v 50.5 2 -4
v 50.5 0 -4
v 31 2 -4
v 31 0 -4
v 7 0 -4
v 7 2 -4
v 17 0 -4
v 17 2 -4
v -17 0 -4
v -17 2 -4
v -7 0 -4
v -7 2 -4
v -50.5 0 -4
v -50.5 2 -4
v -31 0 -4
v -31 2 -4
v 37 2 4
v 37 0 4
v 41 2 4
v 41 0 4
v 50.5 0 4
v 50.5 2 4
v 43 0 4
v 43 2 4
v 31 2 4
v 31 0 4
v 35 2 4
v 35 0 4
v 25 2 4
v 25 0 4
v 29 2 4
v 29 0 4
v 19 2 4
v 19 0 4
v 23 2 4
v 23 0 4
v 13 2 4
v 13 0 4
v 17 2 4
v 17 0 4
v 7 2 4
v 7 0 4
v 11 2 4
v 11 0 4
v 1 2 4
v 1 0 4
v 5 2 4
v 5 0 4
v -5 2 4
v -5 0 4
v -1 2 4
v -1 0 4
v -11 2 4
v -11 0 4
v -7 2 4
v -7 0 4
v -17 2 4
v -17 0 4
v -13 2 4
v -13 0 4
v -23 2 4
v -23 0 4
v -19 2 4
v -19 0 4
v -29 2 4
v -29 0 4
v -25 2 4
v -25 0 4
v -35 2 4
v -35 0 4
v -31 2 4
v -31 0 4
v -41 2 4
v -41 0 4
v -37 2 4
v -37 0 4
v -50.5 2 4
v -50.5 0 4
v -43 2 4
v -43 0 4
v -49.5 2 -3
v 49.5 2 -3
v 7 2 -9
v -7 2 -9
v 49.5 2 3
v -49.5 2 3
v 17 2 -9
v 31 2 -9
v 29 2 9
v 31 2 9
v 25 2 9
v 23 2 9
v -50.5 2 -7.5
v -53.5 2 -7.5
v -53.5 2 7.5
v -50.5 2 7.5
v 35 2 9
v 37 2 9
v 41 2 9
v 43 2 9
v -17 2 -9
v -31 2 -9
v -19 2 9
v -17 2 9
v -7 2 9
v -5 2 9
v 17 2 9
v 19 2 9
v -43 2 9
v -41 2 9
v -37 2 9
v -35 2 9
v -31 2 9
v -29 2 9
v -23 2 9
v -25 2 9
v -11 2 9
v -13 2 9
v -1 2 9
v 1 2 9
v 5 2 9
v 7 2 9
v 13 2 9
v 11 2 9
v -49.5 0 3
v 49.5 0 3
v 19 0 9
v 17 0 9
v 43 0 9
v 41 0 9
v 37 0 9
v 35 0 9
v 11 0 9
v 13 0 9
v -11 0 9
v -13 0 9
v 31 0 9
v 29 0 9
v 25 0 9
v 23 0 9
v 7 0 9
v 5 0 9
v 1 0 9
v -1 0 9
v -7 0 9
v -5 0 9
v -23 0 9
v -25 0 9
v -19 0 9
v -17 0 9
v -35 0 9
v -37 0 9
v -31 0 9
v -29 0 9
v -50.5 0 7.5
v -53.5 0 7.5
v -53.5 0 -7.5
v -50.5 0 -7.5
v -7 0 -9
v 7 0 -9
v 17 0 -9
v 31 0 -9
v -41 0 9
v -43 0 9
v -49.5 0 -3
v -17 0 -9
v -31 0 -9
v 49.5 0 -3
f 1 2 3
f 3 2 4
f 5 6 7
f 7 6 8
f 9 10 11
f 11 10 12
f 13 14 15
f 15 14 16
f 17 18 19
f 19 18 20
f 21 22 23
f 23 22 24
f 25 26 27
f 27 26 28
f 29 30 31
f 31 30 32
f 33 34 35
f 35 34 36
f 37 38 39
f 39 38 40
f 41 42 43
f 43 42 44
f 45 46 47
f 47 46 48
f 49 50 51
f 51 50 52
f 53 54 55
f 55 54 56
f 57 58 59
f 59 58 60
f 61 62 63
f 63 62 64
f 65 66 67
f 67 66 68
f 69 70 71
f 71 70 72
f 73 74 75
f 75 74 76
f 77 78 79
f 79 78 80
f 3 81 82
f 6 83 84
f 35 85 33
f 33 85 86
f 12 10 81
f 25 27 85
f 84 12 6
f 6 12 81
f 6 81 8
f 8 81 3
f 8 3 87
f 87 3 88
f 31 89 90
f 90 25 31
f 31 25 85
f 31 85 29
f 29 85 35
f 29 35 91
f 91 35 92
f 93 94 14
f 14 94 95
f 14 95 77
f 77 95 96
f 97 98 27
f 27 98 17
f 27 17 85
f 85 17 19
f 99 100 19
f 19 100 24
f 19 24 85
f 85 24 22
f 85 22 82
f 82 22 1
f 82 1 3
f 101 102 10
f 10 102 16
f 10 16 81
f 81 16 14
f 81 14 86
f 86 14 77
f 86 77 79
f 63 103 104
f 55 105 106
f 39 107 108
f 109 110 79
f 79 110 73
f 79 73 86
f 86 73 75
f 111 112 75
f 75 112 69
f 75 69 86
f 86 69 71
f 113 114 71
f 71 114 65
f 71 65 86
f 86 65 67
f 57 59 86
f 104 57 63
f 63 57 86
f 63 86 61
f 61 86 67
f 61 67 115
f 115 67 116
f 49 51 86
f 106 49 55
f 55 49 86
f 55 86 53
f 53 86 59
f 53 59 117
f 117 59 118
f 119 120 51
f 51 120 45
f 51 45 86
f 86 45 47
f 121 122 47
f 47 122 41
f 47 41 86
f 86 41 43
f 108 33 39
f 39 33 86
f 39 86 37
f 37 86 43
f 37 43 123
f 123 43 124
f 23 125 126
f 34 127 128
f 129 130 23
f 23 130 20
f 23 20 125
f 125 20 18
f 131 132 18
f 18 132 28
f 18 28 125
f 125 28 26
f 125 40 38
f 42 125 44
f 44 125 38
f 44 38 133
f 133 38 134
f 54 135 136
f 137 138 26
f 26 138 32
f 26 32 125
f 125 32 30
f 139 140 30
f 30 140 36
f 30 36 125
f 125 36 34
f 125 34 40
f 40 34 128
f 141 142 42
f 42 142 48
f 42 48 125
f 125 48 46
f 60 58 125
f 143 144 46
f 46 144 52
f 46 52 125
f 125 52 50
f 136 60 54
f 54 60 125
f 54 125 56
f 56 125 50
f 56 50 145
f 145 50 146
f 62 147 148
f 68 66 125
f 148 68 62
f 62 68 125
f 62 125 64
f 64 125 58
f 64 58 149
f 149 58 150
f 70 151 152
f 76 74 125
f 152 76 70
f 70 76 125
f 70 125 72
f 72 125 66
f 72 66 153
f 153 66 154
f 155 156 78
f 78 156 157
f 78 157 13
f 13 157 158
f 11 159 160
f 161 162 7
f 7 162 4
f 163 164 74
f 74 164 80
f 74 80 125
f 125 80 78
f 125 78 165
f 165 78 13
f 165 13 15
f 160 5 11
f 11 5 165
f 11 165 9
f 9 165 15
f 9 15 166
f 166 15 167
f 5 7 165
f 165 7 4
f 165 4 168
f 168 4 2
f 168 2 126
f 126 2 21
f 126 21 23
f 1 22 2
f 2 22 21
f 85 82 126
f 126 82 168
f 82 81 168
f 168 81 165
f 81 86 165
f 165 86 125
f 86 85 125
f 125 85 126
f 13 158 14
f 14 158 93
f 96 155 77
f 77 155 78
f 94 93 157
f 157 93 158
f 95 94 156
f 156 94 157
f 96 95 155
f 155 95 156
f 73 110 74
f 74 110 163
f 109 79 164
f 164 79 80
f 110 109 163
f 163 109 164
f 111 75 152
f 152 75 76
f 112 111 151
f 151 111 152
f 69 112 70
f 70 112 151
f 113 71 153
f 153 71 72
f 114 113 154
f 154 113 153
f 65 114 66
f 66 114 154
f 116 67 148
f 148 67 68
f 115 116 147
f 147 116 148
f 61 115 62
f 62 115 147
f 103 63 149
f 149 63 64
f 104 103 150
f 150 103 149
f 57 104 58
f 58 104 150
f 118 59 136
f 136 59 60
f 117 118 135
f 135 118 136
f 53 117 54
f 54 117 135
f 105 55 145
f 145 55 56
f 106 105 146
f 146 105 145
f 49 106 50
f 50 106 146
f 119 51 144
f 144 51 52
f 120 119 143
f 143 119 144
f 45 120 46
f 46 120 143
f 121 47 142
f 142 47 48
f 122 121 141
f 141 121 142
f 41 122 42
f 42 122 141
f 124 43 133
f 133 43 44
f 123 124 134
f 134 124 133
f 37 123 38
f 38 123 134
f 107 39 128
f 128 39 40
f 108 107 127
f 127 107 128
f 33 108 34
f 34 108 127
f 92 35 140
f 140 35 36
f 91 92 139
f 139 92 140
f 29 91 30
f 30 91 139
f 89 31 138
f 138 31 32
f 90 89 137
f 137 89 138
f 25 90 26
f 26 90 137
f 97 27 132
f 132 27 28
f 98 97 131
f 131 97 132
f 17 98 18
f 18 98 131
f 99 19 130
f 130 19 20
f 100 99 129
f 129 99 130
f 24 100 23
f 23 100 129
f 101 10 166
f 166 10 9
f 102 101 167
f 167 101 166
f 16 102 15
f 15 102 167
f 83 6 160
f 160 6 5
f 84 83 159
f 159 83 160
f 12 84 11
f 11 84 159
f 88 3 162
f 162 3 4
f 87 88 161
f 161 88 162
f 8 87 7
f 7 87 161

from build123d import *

# Parameters (mm, degrees)
SKETCH1_W           = 101
SKETCH1_H           = 8
SKETCH1_W_2         = 99
SKETCH1_H_2         = 6
BOSS_EXTRUDE1_DEPTH = 2
SKETCH2_W           = 3
SKETCH2_H           = 15
SKETCH2_W_2         = 2
SKETCH2_H_2         = 5
SKETCH2_W_3         = 14
BOSS_EXTRUDE2_DEPTH = 2


with BuildPart() as part:
    # Sketch1 → Boss-Extrude1 (new body)
    with BuildSketch(Plane(origin=(0, 0, 0), x_dir=(1, 0, 0), z_dir=(0, 1, 0))):
        Rectangle(SKETCH1_W, SKETCH1_H)
        Rectangle(SKETCH1_W_2, SKETCH1_H_2, mode=Mode.SUBTRACT)
    extrude(amount=BOSS_EXTRUDE1_DEPTH)

    # Sketch2 → Boss-Extrude2 (add)
    with BuildSketch(Plane(origin=(0, 0, 0), x_dir=(1, 0, 0), z_dir=(0, 1, 0))):
        with Locations((-52, 0)):
            Rectangle(SKETCH2_W, SKETCH2_H)
        with Locations((-42, -6.5)):
            Rectangle(SKETCH2_W_2, SKETCH2_H_2)
        with Locations((-36, -6.5)):
            Rectangle(SKETCH2_W_2, SKETCH2_H_2)
        with Locations((-30, -6.5)):
            Rectangle(SKETCH2_W_2, SKETCH2_H_2)
        with Locations((-24, -6.5)):
            Rectangle(SKETCH2_W_2, SKETCH2_H_2)
        with Locations((-18, -6.5)):
            Rectangle(SKETCH2_W_2, SKETCH2_H_2)
        with Locations((-12, -6.5)):
            Rectangle(SKETCH2_W_2, SKETCH2_H_2)
        with Locations((-6, -6.5)):
            Rectangle(SKETCH2_W_2, SKETCH2_H_2)
        with Locations((0, -6.5)):
            Rectangle(SKETCH2_W_2, SKETCH2_H_2)
        with Locations((6, -6.5)):
            Rectangle(SKETCH2_W_2, SKETCH2_H_2)
        with Locations((12, -6.5)):
            Rectangle(SKETCH2_W_2, SKETCH2_H_2)
        with Locations((18, -6.5)):
            Rectangle(SKETCH2_W_2, SKETCH2_H_2)
        with Locations((24, -6.5)):
            Rectangle(SKETCH2_W_2, SKETCH2_H_2)
        with Locations((30, -6.5)):
            Rectangle(SKETCH2_W_2, SKETCH2_H_2)
        with Locations((36, -6.5)):
            Rectangle(SKETCH2_W_2, SKETCH2_H_2)
        with Locations((42, -6.5)):
            Rectangle(SKETCH2_W_2, SKETCH2_H_2)
        with Locations((-24, 6.5)):
            Rectangle(SKETCH2_W_3, SKETCH2_H_2)
        with Locations((0, 6.5)):
            Rectangle(SKETCH2_W_3, SKETCH2_H_2)
        with Locations((24, 6.5)):
            Rectangle(SKETCH2_W_3, SKETCH2_H_2)
    extrude(amount=BOSS_EXTRUDE2_DEPTH)


solid = part.part
